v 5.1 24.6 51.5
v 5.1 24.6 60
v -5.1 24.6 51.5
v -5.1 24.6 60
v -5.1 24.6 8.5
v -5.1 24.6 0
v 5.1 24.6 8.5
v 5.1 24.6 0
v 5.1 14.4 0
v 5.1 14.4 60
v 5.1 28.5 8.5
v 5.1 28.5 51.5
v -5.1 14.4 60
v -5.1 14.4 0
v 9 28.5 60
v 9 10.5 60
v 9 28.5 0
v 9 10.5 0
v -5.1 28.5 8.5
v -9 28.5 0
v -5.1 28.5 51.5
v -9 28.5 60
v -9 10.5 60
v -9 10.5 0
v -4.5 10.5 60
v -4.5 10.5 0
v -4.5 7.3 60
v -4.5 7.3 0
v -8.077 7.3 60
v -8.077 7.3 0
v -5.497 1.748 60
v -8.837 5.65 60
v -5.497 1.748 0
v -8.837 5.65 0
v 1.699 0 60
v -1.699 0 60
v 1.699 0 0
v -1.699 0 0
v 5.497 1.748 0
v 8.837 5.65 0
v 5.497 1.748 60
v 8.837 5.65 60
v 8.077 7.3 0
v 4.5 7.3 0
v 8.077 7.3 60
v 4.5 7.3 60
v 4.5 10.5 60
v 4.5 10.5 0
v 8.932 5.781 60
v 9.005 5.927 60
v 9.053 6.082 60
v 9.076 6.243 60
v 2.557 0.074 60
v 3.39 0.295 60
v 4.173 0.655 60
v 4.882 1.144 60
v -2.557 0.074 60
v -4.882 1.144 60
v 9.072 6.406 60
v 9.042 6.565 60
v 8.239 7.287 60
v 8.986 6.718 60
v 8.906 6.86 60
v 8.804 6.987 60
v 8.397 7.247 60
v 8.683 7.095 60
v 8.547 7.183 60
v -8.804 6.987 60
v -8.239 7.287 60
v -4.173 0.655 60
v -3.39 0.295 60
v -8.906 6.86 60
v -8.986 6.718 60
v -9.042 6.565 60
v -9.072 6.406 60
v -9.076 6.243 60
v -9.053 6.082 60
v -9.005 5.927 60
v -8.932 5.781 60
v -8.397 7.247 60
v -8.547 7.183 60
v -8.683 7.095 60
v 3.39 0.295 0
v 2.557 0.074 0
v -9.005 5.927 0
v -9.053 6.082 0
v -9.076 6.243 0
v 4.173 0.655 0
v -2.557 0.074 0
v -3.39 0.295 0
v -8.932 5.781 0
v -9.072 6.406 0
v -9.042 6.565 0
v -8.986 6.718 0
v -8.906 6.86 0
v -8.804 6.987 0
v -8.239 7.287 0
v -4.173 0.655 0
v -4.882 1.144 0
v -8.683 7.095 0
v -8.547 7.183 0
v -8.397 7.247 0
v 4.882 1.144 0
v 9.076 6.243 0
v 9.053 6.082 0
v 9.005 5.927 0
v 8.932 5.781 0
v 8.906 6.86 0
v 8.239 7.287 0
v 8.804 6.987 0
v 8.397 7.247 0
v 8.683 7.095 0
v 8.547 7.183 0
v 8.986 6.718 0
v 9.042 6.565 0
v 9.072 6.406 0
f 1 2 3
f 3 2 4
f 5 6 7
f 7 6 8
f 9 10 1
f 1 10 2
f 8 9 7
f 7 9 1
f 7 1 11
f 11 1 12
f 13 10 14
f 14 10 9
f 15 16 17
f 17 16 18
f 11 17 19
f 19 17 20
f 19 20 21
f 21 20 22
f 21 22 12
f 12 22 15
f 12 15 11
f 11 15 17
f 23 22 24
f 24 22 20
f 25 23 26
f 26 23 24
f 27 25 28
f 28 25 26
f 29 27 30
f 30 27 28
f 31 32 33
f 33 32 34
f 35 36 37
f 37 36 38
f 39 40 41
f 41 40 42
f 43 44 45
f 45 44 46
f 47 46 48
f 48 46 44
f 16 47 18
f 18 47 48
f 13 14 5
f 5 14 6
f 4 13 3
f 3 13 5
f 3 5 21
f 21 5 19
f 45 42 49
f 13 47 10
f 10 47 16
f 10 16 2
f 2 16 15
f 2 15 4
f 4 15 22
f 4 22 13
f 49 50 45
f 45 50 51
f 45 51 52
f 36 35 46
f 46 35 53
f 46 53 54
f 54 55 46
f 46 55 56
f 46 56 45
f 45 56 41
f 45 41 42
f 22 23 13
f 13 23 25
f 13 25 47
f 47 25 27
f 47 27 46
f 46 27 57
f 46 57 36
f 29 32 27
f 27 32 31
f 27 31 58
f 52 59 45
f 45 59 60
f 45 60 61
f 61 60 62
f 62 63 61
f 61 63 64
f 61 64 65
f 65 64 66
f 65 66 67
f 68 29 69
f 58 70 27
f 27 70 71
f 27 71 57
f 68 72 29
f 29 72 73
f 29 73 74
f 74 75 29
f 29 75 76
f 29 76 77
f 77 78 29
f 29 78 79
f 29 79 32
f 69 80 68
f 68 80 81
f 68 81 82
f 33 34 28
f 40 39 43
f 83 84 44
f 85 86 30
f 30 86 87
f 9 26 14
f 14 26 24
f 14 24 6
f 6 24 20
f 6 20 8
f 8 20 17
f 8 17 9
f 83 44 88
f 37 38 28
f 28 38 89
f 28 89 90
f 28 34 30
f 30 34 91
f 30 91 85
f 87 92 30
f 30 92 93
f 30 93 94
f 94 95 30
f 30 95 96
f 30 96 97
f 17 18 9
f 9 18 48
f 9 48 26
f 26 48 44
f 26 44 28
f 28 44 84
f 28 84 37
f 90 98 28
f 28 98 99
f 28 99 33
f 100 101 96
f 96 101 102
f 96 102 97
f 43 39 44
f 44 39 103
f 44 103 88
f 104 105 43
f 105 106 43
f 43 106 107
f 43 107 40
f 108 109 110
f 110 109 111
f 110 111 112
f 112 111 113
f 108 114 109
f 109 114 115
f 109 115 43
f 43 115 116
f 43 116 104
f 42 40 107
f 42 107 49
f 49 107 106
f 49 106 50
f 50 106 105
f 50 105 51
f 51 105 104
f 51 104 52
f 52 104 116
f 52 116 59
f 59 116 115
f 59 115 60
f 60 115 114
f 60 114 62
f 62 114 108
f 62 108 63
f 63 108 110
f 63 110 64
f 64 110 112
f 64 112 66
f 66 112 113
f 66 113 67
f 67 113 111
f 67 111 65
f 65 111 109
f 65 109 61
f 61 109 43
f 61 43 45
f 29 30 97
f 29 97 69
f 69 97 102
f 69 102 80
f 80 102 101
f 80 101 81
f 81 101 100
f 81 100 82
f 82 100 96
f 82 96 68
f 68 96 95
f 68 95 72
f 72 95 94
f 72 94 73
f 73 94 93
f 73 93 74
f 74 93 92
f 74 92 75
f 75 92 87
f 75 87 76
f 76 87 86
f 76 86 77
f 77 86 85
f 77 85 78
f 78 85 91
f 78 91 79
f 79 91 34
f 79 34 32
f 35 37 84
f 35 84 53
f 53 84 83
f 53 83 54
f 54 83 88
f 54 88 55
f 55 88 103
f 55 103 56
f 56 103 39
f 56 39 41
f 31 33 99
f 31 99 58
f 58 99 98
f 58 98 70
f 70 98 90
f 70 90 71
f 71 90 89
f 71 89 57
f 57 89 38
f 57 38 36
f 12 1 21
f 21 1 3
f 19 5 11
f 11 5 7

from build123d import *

# Parameters (mm, degrees)
SKETCH1_W           = 10.2
SKETCH1_H           = 10.2
BOSS_EXTRUDE3_DEPTH = 60
FILLET1_R           = 1
FILLET2_R           = 5
SKETCH2_W           = 10.2
SKETCH2_H           = 43
CUT_EXTRUDE1_DEPTH  = 10


with BuildPart() as part:
    # Sketch1 → Boss-Extrude3 (new body)
    # profile 1 of 2: a face of its own
    with BuildSketch(Plane.XY):
        Polygon((-9, 10.5), (-4.5, 10.5), (4.5, 10.5), (9, 10.5), (9, 28.5), (-9, 28.5), align=None)
        with Locations((0, 19.5)):
            Rectangle(SKETCH1_W, SKETCH1_H, mode=Mode.SUBTRACT)
    # profile 2 of 2: a face of its own
    with BuildSketch(Plane.XY):
        Polygon((-4.5, 7.3), (-10.25, 7.3), (-4, 0), (4, 0), (10.25, 7.3), (4.5, 7.3), (4.5, 10.5), (-4.5, 10.5), align=None)
    extrude(amount=BOSS_EXTRUDE3_DEPTH)

    # Fillet1
    fillet1_edges = [part.edges().sort_by_distance(p)[0] for p in [
        (10.25, 7.3, 30),
        (-10.25, 7.3, 30),
    ]]
    fillet(fillet1_edges, radius=FILLET1_R)

    # Fillet2
    fillet2_edges = [part.edges().sort_by_distance(p)[0] for p in [
        (4, 0, 30),
        (-4, 0, 30),
    ]]
    fillet(fillet2_edges, radius=FILLET2_R)

    # Sketch2 → Cut-Extrude1 (cut)
    with BuildSketch(Plane(origin=(0, 28.5, 0), x_dir=(1, 0, 0), z_dir=(0, 1, 0))):
        with Locations((0, -30)):
            Rectangle(SKETCH2_W, SKETCH2_H)
    extrude(amount=-CUT_EXTRUDE1_DEPTH, mode=Mode.SUBTRACT)


solid = part.part
